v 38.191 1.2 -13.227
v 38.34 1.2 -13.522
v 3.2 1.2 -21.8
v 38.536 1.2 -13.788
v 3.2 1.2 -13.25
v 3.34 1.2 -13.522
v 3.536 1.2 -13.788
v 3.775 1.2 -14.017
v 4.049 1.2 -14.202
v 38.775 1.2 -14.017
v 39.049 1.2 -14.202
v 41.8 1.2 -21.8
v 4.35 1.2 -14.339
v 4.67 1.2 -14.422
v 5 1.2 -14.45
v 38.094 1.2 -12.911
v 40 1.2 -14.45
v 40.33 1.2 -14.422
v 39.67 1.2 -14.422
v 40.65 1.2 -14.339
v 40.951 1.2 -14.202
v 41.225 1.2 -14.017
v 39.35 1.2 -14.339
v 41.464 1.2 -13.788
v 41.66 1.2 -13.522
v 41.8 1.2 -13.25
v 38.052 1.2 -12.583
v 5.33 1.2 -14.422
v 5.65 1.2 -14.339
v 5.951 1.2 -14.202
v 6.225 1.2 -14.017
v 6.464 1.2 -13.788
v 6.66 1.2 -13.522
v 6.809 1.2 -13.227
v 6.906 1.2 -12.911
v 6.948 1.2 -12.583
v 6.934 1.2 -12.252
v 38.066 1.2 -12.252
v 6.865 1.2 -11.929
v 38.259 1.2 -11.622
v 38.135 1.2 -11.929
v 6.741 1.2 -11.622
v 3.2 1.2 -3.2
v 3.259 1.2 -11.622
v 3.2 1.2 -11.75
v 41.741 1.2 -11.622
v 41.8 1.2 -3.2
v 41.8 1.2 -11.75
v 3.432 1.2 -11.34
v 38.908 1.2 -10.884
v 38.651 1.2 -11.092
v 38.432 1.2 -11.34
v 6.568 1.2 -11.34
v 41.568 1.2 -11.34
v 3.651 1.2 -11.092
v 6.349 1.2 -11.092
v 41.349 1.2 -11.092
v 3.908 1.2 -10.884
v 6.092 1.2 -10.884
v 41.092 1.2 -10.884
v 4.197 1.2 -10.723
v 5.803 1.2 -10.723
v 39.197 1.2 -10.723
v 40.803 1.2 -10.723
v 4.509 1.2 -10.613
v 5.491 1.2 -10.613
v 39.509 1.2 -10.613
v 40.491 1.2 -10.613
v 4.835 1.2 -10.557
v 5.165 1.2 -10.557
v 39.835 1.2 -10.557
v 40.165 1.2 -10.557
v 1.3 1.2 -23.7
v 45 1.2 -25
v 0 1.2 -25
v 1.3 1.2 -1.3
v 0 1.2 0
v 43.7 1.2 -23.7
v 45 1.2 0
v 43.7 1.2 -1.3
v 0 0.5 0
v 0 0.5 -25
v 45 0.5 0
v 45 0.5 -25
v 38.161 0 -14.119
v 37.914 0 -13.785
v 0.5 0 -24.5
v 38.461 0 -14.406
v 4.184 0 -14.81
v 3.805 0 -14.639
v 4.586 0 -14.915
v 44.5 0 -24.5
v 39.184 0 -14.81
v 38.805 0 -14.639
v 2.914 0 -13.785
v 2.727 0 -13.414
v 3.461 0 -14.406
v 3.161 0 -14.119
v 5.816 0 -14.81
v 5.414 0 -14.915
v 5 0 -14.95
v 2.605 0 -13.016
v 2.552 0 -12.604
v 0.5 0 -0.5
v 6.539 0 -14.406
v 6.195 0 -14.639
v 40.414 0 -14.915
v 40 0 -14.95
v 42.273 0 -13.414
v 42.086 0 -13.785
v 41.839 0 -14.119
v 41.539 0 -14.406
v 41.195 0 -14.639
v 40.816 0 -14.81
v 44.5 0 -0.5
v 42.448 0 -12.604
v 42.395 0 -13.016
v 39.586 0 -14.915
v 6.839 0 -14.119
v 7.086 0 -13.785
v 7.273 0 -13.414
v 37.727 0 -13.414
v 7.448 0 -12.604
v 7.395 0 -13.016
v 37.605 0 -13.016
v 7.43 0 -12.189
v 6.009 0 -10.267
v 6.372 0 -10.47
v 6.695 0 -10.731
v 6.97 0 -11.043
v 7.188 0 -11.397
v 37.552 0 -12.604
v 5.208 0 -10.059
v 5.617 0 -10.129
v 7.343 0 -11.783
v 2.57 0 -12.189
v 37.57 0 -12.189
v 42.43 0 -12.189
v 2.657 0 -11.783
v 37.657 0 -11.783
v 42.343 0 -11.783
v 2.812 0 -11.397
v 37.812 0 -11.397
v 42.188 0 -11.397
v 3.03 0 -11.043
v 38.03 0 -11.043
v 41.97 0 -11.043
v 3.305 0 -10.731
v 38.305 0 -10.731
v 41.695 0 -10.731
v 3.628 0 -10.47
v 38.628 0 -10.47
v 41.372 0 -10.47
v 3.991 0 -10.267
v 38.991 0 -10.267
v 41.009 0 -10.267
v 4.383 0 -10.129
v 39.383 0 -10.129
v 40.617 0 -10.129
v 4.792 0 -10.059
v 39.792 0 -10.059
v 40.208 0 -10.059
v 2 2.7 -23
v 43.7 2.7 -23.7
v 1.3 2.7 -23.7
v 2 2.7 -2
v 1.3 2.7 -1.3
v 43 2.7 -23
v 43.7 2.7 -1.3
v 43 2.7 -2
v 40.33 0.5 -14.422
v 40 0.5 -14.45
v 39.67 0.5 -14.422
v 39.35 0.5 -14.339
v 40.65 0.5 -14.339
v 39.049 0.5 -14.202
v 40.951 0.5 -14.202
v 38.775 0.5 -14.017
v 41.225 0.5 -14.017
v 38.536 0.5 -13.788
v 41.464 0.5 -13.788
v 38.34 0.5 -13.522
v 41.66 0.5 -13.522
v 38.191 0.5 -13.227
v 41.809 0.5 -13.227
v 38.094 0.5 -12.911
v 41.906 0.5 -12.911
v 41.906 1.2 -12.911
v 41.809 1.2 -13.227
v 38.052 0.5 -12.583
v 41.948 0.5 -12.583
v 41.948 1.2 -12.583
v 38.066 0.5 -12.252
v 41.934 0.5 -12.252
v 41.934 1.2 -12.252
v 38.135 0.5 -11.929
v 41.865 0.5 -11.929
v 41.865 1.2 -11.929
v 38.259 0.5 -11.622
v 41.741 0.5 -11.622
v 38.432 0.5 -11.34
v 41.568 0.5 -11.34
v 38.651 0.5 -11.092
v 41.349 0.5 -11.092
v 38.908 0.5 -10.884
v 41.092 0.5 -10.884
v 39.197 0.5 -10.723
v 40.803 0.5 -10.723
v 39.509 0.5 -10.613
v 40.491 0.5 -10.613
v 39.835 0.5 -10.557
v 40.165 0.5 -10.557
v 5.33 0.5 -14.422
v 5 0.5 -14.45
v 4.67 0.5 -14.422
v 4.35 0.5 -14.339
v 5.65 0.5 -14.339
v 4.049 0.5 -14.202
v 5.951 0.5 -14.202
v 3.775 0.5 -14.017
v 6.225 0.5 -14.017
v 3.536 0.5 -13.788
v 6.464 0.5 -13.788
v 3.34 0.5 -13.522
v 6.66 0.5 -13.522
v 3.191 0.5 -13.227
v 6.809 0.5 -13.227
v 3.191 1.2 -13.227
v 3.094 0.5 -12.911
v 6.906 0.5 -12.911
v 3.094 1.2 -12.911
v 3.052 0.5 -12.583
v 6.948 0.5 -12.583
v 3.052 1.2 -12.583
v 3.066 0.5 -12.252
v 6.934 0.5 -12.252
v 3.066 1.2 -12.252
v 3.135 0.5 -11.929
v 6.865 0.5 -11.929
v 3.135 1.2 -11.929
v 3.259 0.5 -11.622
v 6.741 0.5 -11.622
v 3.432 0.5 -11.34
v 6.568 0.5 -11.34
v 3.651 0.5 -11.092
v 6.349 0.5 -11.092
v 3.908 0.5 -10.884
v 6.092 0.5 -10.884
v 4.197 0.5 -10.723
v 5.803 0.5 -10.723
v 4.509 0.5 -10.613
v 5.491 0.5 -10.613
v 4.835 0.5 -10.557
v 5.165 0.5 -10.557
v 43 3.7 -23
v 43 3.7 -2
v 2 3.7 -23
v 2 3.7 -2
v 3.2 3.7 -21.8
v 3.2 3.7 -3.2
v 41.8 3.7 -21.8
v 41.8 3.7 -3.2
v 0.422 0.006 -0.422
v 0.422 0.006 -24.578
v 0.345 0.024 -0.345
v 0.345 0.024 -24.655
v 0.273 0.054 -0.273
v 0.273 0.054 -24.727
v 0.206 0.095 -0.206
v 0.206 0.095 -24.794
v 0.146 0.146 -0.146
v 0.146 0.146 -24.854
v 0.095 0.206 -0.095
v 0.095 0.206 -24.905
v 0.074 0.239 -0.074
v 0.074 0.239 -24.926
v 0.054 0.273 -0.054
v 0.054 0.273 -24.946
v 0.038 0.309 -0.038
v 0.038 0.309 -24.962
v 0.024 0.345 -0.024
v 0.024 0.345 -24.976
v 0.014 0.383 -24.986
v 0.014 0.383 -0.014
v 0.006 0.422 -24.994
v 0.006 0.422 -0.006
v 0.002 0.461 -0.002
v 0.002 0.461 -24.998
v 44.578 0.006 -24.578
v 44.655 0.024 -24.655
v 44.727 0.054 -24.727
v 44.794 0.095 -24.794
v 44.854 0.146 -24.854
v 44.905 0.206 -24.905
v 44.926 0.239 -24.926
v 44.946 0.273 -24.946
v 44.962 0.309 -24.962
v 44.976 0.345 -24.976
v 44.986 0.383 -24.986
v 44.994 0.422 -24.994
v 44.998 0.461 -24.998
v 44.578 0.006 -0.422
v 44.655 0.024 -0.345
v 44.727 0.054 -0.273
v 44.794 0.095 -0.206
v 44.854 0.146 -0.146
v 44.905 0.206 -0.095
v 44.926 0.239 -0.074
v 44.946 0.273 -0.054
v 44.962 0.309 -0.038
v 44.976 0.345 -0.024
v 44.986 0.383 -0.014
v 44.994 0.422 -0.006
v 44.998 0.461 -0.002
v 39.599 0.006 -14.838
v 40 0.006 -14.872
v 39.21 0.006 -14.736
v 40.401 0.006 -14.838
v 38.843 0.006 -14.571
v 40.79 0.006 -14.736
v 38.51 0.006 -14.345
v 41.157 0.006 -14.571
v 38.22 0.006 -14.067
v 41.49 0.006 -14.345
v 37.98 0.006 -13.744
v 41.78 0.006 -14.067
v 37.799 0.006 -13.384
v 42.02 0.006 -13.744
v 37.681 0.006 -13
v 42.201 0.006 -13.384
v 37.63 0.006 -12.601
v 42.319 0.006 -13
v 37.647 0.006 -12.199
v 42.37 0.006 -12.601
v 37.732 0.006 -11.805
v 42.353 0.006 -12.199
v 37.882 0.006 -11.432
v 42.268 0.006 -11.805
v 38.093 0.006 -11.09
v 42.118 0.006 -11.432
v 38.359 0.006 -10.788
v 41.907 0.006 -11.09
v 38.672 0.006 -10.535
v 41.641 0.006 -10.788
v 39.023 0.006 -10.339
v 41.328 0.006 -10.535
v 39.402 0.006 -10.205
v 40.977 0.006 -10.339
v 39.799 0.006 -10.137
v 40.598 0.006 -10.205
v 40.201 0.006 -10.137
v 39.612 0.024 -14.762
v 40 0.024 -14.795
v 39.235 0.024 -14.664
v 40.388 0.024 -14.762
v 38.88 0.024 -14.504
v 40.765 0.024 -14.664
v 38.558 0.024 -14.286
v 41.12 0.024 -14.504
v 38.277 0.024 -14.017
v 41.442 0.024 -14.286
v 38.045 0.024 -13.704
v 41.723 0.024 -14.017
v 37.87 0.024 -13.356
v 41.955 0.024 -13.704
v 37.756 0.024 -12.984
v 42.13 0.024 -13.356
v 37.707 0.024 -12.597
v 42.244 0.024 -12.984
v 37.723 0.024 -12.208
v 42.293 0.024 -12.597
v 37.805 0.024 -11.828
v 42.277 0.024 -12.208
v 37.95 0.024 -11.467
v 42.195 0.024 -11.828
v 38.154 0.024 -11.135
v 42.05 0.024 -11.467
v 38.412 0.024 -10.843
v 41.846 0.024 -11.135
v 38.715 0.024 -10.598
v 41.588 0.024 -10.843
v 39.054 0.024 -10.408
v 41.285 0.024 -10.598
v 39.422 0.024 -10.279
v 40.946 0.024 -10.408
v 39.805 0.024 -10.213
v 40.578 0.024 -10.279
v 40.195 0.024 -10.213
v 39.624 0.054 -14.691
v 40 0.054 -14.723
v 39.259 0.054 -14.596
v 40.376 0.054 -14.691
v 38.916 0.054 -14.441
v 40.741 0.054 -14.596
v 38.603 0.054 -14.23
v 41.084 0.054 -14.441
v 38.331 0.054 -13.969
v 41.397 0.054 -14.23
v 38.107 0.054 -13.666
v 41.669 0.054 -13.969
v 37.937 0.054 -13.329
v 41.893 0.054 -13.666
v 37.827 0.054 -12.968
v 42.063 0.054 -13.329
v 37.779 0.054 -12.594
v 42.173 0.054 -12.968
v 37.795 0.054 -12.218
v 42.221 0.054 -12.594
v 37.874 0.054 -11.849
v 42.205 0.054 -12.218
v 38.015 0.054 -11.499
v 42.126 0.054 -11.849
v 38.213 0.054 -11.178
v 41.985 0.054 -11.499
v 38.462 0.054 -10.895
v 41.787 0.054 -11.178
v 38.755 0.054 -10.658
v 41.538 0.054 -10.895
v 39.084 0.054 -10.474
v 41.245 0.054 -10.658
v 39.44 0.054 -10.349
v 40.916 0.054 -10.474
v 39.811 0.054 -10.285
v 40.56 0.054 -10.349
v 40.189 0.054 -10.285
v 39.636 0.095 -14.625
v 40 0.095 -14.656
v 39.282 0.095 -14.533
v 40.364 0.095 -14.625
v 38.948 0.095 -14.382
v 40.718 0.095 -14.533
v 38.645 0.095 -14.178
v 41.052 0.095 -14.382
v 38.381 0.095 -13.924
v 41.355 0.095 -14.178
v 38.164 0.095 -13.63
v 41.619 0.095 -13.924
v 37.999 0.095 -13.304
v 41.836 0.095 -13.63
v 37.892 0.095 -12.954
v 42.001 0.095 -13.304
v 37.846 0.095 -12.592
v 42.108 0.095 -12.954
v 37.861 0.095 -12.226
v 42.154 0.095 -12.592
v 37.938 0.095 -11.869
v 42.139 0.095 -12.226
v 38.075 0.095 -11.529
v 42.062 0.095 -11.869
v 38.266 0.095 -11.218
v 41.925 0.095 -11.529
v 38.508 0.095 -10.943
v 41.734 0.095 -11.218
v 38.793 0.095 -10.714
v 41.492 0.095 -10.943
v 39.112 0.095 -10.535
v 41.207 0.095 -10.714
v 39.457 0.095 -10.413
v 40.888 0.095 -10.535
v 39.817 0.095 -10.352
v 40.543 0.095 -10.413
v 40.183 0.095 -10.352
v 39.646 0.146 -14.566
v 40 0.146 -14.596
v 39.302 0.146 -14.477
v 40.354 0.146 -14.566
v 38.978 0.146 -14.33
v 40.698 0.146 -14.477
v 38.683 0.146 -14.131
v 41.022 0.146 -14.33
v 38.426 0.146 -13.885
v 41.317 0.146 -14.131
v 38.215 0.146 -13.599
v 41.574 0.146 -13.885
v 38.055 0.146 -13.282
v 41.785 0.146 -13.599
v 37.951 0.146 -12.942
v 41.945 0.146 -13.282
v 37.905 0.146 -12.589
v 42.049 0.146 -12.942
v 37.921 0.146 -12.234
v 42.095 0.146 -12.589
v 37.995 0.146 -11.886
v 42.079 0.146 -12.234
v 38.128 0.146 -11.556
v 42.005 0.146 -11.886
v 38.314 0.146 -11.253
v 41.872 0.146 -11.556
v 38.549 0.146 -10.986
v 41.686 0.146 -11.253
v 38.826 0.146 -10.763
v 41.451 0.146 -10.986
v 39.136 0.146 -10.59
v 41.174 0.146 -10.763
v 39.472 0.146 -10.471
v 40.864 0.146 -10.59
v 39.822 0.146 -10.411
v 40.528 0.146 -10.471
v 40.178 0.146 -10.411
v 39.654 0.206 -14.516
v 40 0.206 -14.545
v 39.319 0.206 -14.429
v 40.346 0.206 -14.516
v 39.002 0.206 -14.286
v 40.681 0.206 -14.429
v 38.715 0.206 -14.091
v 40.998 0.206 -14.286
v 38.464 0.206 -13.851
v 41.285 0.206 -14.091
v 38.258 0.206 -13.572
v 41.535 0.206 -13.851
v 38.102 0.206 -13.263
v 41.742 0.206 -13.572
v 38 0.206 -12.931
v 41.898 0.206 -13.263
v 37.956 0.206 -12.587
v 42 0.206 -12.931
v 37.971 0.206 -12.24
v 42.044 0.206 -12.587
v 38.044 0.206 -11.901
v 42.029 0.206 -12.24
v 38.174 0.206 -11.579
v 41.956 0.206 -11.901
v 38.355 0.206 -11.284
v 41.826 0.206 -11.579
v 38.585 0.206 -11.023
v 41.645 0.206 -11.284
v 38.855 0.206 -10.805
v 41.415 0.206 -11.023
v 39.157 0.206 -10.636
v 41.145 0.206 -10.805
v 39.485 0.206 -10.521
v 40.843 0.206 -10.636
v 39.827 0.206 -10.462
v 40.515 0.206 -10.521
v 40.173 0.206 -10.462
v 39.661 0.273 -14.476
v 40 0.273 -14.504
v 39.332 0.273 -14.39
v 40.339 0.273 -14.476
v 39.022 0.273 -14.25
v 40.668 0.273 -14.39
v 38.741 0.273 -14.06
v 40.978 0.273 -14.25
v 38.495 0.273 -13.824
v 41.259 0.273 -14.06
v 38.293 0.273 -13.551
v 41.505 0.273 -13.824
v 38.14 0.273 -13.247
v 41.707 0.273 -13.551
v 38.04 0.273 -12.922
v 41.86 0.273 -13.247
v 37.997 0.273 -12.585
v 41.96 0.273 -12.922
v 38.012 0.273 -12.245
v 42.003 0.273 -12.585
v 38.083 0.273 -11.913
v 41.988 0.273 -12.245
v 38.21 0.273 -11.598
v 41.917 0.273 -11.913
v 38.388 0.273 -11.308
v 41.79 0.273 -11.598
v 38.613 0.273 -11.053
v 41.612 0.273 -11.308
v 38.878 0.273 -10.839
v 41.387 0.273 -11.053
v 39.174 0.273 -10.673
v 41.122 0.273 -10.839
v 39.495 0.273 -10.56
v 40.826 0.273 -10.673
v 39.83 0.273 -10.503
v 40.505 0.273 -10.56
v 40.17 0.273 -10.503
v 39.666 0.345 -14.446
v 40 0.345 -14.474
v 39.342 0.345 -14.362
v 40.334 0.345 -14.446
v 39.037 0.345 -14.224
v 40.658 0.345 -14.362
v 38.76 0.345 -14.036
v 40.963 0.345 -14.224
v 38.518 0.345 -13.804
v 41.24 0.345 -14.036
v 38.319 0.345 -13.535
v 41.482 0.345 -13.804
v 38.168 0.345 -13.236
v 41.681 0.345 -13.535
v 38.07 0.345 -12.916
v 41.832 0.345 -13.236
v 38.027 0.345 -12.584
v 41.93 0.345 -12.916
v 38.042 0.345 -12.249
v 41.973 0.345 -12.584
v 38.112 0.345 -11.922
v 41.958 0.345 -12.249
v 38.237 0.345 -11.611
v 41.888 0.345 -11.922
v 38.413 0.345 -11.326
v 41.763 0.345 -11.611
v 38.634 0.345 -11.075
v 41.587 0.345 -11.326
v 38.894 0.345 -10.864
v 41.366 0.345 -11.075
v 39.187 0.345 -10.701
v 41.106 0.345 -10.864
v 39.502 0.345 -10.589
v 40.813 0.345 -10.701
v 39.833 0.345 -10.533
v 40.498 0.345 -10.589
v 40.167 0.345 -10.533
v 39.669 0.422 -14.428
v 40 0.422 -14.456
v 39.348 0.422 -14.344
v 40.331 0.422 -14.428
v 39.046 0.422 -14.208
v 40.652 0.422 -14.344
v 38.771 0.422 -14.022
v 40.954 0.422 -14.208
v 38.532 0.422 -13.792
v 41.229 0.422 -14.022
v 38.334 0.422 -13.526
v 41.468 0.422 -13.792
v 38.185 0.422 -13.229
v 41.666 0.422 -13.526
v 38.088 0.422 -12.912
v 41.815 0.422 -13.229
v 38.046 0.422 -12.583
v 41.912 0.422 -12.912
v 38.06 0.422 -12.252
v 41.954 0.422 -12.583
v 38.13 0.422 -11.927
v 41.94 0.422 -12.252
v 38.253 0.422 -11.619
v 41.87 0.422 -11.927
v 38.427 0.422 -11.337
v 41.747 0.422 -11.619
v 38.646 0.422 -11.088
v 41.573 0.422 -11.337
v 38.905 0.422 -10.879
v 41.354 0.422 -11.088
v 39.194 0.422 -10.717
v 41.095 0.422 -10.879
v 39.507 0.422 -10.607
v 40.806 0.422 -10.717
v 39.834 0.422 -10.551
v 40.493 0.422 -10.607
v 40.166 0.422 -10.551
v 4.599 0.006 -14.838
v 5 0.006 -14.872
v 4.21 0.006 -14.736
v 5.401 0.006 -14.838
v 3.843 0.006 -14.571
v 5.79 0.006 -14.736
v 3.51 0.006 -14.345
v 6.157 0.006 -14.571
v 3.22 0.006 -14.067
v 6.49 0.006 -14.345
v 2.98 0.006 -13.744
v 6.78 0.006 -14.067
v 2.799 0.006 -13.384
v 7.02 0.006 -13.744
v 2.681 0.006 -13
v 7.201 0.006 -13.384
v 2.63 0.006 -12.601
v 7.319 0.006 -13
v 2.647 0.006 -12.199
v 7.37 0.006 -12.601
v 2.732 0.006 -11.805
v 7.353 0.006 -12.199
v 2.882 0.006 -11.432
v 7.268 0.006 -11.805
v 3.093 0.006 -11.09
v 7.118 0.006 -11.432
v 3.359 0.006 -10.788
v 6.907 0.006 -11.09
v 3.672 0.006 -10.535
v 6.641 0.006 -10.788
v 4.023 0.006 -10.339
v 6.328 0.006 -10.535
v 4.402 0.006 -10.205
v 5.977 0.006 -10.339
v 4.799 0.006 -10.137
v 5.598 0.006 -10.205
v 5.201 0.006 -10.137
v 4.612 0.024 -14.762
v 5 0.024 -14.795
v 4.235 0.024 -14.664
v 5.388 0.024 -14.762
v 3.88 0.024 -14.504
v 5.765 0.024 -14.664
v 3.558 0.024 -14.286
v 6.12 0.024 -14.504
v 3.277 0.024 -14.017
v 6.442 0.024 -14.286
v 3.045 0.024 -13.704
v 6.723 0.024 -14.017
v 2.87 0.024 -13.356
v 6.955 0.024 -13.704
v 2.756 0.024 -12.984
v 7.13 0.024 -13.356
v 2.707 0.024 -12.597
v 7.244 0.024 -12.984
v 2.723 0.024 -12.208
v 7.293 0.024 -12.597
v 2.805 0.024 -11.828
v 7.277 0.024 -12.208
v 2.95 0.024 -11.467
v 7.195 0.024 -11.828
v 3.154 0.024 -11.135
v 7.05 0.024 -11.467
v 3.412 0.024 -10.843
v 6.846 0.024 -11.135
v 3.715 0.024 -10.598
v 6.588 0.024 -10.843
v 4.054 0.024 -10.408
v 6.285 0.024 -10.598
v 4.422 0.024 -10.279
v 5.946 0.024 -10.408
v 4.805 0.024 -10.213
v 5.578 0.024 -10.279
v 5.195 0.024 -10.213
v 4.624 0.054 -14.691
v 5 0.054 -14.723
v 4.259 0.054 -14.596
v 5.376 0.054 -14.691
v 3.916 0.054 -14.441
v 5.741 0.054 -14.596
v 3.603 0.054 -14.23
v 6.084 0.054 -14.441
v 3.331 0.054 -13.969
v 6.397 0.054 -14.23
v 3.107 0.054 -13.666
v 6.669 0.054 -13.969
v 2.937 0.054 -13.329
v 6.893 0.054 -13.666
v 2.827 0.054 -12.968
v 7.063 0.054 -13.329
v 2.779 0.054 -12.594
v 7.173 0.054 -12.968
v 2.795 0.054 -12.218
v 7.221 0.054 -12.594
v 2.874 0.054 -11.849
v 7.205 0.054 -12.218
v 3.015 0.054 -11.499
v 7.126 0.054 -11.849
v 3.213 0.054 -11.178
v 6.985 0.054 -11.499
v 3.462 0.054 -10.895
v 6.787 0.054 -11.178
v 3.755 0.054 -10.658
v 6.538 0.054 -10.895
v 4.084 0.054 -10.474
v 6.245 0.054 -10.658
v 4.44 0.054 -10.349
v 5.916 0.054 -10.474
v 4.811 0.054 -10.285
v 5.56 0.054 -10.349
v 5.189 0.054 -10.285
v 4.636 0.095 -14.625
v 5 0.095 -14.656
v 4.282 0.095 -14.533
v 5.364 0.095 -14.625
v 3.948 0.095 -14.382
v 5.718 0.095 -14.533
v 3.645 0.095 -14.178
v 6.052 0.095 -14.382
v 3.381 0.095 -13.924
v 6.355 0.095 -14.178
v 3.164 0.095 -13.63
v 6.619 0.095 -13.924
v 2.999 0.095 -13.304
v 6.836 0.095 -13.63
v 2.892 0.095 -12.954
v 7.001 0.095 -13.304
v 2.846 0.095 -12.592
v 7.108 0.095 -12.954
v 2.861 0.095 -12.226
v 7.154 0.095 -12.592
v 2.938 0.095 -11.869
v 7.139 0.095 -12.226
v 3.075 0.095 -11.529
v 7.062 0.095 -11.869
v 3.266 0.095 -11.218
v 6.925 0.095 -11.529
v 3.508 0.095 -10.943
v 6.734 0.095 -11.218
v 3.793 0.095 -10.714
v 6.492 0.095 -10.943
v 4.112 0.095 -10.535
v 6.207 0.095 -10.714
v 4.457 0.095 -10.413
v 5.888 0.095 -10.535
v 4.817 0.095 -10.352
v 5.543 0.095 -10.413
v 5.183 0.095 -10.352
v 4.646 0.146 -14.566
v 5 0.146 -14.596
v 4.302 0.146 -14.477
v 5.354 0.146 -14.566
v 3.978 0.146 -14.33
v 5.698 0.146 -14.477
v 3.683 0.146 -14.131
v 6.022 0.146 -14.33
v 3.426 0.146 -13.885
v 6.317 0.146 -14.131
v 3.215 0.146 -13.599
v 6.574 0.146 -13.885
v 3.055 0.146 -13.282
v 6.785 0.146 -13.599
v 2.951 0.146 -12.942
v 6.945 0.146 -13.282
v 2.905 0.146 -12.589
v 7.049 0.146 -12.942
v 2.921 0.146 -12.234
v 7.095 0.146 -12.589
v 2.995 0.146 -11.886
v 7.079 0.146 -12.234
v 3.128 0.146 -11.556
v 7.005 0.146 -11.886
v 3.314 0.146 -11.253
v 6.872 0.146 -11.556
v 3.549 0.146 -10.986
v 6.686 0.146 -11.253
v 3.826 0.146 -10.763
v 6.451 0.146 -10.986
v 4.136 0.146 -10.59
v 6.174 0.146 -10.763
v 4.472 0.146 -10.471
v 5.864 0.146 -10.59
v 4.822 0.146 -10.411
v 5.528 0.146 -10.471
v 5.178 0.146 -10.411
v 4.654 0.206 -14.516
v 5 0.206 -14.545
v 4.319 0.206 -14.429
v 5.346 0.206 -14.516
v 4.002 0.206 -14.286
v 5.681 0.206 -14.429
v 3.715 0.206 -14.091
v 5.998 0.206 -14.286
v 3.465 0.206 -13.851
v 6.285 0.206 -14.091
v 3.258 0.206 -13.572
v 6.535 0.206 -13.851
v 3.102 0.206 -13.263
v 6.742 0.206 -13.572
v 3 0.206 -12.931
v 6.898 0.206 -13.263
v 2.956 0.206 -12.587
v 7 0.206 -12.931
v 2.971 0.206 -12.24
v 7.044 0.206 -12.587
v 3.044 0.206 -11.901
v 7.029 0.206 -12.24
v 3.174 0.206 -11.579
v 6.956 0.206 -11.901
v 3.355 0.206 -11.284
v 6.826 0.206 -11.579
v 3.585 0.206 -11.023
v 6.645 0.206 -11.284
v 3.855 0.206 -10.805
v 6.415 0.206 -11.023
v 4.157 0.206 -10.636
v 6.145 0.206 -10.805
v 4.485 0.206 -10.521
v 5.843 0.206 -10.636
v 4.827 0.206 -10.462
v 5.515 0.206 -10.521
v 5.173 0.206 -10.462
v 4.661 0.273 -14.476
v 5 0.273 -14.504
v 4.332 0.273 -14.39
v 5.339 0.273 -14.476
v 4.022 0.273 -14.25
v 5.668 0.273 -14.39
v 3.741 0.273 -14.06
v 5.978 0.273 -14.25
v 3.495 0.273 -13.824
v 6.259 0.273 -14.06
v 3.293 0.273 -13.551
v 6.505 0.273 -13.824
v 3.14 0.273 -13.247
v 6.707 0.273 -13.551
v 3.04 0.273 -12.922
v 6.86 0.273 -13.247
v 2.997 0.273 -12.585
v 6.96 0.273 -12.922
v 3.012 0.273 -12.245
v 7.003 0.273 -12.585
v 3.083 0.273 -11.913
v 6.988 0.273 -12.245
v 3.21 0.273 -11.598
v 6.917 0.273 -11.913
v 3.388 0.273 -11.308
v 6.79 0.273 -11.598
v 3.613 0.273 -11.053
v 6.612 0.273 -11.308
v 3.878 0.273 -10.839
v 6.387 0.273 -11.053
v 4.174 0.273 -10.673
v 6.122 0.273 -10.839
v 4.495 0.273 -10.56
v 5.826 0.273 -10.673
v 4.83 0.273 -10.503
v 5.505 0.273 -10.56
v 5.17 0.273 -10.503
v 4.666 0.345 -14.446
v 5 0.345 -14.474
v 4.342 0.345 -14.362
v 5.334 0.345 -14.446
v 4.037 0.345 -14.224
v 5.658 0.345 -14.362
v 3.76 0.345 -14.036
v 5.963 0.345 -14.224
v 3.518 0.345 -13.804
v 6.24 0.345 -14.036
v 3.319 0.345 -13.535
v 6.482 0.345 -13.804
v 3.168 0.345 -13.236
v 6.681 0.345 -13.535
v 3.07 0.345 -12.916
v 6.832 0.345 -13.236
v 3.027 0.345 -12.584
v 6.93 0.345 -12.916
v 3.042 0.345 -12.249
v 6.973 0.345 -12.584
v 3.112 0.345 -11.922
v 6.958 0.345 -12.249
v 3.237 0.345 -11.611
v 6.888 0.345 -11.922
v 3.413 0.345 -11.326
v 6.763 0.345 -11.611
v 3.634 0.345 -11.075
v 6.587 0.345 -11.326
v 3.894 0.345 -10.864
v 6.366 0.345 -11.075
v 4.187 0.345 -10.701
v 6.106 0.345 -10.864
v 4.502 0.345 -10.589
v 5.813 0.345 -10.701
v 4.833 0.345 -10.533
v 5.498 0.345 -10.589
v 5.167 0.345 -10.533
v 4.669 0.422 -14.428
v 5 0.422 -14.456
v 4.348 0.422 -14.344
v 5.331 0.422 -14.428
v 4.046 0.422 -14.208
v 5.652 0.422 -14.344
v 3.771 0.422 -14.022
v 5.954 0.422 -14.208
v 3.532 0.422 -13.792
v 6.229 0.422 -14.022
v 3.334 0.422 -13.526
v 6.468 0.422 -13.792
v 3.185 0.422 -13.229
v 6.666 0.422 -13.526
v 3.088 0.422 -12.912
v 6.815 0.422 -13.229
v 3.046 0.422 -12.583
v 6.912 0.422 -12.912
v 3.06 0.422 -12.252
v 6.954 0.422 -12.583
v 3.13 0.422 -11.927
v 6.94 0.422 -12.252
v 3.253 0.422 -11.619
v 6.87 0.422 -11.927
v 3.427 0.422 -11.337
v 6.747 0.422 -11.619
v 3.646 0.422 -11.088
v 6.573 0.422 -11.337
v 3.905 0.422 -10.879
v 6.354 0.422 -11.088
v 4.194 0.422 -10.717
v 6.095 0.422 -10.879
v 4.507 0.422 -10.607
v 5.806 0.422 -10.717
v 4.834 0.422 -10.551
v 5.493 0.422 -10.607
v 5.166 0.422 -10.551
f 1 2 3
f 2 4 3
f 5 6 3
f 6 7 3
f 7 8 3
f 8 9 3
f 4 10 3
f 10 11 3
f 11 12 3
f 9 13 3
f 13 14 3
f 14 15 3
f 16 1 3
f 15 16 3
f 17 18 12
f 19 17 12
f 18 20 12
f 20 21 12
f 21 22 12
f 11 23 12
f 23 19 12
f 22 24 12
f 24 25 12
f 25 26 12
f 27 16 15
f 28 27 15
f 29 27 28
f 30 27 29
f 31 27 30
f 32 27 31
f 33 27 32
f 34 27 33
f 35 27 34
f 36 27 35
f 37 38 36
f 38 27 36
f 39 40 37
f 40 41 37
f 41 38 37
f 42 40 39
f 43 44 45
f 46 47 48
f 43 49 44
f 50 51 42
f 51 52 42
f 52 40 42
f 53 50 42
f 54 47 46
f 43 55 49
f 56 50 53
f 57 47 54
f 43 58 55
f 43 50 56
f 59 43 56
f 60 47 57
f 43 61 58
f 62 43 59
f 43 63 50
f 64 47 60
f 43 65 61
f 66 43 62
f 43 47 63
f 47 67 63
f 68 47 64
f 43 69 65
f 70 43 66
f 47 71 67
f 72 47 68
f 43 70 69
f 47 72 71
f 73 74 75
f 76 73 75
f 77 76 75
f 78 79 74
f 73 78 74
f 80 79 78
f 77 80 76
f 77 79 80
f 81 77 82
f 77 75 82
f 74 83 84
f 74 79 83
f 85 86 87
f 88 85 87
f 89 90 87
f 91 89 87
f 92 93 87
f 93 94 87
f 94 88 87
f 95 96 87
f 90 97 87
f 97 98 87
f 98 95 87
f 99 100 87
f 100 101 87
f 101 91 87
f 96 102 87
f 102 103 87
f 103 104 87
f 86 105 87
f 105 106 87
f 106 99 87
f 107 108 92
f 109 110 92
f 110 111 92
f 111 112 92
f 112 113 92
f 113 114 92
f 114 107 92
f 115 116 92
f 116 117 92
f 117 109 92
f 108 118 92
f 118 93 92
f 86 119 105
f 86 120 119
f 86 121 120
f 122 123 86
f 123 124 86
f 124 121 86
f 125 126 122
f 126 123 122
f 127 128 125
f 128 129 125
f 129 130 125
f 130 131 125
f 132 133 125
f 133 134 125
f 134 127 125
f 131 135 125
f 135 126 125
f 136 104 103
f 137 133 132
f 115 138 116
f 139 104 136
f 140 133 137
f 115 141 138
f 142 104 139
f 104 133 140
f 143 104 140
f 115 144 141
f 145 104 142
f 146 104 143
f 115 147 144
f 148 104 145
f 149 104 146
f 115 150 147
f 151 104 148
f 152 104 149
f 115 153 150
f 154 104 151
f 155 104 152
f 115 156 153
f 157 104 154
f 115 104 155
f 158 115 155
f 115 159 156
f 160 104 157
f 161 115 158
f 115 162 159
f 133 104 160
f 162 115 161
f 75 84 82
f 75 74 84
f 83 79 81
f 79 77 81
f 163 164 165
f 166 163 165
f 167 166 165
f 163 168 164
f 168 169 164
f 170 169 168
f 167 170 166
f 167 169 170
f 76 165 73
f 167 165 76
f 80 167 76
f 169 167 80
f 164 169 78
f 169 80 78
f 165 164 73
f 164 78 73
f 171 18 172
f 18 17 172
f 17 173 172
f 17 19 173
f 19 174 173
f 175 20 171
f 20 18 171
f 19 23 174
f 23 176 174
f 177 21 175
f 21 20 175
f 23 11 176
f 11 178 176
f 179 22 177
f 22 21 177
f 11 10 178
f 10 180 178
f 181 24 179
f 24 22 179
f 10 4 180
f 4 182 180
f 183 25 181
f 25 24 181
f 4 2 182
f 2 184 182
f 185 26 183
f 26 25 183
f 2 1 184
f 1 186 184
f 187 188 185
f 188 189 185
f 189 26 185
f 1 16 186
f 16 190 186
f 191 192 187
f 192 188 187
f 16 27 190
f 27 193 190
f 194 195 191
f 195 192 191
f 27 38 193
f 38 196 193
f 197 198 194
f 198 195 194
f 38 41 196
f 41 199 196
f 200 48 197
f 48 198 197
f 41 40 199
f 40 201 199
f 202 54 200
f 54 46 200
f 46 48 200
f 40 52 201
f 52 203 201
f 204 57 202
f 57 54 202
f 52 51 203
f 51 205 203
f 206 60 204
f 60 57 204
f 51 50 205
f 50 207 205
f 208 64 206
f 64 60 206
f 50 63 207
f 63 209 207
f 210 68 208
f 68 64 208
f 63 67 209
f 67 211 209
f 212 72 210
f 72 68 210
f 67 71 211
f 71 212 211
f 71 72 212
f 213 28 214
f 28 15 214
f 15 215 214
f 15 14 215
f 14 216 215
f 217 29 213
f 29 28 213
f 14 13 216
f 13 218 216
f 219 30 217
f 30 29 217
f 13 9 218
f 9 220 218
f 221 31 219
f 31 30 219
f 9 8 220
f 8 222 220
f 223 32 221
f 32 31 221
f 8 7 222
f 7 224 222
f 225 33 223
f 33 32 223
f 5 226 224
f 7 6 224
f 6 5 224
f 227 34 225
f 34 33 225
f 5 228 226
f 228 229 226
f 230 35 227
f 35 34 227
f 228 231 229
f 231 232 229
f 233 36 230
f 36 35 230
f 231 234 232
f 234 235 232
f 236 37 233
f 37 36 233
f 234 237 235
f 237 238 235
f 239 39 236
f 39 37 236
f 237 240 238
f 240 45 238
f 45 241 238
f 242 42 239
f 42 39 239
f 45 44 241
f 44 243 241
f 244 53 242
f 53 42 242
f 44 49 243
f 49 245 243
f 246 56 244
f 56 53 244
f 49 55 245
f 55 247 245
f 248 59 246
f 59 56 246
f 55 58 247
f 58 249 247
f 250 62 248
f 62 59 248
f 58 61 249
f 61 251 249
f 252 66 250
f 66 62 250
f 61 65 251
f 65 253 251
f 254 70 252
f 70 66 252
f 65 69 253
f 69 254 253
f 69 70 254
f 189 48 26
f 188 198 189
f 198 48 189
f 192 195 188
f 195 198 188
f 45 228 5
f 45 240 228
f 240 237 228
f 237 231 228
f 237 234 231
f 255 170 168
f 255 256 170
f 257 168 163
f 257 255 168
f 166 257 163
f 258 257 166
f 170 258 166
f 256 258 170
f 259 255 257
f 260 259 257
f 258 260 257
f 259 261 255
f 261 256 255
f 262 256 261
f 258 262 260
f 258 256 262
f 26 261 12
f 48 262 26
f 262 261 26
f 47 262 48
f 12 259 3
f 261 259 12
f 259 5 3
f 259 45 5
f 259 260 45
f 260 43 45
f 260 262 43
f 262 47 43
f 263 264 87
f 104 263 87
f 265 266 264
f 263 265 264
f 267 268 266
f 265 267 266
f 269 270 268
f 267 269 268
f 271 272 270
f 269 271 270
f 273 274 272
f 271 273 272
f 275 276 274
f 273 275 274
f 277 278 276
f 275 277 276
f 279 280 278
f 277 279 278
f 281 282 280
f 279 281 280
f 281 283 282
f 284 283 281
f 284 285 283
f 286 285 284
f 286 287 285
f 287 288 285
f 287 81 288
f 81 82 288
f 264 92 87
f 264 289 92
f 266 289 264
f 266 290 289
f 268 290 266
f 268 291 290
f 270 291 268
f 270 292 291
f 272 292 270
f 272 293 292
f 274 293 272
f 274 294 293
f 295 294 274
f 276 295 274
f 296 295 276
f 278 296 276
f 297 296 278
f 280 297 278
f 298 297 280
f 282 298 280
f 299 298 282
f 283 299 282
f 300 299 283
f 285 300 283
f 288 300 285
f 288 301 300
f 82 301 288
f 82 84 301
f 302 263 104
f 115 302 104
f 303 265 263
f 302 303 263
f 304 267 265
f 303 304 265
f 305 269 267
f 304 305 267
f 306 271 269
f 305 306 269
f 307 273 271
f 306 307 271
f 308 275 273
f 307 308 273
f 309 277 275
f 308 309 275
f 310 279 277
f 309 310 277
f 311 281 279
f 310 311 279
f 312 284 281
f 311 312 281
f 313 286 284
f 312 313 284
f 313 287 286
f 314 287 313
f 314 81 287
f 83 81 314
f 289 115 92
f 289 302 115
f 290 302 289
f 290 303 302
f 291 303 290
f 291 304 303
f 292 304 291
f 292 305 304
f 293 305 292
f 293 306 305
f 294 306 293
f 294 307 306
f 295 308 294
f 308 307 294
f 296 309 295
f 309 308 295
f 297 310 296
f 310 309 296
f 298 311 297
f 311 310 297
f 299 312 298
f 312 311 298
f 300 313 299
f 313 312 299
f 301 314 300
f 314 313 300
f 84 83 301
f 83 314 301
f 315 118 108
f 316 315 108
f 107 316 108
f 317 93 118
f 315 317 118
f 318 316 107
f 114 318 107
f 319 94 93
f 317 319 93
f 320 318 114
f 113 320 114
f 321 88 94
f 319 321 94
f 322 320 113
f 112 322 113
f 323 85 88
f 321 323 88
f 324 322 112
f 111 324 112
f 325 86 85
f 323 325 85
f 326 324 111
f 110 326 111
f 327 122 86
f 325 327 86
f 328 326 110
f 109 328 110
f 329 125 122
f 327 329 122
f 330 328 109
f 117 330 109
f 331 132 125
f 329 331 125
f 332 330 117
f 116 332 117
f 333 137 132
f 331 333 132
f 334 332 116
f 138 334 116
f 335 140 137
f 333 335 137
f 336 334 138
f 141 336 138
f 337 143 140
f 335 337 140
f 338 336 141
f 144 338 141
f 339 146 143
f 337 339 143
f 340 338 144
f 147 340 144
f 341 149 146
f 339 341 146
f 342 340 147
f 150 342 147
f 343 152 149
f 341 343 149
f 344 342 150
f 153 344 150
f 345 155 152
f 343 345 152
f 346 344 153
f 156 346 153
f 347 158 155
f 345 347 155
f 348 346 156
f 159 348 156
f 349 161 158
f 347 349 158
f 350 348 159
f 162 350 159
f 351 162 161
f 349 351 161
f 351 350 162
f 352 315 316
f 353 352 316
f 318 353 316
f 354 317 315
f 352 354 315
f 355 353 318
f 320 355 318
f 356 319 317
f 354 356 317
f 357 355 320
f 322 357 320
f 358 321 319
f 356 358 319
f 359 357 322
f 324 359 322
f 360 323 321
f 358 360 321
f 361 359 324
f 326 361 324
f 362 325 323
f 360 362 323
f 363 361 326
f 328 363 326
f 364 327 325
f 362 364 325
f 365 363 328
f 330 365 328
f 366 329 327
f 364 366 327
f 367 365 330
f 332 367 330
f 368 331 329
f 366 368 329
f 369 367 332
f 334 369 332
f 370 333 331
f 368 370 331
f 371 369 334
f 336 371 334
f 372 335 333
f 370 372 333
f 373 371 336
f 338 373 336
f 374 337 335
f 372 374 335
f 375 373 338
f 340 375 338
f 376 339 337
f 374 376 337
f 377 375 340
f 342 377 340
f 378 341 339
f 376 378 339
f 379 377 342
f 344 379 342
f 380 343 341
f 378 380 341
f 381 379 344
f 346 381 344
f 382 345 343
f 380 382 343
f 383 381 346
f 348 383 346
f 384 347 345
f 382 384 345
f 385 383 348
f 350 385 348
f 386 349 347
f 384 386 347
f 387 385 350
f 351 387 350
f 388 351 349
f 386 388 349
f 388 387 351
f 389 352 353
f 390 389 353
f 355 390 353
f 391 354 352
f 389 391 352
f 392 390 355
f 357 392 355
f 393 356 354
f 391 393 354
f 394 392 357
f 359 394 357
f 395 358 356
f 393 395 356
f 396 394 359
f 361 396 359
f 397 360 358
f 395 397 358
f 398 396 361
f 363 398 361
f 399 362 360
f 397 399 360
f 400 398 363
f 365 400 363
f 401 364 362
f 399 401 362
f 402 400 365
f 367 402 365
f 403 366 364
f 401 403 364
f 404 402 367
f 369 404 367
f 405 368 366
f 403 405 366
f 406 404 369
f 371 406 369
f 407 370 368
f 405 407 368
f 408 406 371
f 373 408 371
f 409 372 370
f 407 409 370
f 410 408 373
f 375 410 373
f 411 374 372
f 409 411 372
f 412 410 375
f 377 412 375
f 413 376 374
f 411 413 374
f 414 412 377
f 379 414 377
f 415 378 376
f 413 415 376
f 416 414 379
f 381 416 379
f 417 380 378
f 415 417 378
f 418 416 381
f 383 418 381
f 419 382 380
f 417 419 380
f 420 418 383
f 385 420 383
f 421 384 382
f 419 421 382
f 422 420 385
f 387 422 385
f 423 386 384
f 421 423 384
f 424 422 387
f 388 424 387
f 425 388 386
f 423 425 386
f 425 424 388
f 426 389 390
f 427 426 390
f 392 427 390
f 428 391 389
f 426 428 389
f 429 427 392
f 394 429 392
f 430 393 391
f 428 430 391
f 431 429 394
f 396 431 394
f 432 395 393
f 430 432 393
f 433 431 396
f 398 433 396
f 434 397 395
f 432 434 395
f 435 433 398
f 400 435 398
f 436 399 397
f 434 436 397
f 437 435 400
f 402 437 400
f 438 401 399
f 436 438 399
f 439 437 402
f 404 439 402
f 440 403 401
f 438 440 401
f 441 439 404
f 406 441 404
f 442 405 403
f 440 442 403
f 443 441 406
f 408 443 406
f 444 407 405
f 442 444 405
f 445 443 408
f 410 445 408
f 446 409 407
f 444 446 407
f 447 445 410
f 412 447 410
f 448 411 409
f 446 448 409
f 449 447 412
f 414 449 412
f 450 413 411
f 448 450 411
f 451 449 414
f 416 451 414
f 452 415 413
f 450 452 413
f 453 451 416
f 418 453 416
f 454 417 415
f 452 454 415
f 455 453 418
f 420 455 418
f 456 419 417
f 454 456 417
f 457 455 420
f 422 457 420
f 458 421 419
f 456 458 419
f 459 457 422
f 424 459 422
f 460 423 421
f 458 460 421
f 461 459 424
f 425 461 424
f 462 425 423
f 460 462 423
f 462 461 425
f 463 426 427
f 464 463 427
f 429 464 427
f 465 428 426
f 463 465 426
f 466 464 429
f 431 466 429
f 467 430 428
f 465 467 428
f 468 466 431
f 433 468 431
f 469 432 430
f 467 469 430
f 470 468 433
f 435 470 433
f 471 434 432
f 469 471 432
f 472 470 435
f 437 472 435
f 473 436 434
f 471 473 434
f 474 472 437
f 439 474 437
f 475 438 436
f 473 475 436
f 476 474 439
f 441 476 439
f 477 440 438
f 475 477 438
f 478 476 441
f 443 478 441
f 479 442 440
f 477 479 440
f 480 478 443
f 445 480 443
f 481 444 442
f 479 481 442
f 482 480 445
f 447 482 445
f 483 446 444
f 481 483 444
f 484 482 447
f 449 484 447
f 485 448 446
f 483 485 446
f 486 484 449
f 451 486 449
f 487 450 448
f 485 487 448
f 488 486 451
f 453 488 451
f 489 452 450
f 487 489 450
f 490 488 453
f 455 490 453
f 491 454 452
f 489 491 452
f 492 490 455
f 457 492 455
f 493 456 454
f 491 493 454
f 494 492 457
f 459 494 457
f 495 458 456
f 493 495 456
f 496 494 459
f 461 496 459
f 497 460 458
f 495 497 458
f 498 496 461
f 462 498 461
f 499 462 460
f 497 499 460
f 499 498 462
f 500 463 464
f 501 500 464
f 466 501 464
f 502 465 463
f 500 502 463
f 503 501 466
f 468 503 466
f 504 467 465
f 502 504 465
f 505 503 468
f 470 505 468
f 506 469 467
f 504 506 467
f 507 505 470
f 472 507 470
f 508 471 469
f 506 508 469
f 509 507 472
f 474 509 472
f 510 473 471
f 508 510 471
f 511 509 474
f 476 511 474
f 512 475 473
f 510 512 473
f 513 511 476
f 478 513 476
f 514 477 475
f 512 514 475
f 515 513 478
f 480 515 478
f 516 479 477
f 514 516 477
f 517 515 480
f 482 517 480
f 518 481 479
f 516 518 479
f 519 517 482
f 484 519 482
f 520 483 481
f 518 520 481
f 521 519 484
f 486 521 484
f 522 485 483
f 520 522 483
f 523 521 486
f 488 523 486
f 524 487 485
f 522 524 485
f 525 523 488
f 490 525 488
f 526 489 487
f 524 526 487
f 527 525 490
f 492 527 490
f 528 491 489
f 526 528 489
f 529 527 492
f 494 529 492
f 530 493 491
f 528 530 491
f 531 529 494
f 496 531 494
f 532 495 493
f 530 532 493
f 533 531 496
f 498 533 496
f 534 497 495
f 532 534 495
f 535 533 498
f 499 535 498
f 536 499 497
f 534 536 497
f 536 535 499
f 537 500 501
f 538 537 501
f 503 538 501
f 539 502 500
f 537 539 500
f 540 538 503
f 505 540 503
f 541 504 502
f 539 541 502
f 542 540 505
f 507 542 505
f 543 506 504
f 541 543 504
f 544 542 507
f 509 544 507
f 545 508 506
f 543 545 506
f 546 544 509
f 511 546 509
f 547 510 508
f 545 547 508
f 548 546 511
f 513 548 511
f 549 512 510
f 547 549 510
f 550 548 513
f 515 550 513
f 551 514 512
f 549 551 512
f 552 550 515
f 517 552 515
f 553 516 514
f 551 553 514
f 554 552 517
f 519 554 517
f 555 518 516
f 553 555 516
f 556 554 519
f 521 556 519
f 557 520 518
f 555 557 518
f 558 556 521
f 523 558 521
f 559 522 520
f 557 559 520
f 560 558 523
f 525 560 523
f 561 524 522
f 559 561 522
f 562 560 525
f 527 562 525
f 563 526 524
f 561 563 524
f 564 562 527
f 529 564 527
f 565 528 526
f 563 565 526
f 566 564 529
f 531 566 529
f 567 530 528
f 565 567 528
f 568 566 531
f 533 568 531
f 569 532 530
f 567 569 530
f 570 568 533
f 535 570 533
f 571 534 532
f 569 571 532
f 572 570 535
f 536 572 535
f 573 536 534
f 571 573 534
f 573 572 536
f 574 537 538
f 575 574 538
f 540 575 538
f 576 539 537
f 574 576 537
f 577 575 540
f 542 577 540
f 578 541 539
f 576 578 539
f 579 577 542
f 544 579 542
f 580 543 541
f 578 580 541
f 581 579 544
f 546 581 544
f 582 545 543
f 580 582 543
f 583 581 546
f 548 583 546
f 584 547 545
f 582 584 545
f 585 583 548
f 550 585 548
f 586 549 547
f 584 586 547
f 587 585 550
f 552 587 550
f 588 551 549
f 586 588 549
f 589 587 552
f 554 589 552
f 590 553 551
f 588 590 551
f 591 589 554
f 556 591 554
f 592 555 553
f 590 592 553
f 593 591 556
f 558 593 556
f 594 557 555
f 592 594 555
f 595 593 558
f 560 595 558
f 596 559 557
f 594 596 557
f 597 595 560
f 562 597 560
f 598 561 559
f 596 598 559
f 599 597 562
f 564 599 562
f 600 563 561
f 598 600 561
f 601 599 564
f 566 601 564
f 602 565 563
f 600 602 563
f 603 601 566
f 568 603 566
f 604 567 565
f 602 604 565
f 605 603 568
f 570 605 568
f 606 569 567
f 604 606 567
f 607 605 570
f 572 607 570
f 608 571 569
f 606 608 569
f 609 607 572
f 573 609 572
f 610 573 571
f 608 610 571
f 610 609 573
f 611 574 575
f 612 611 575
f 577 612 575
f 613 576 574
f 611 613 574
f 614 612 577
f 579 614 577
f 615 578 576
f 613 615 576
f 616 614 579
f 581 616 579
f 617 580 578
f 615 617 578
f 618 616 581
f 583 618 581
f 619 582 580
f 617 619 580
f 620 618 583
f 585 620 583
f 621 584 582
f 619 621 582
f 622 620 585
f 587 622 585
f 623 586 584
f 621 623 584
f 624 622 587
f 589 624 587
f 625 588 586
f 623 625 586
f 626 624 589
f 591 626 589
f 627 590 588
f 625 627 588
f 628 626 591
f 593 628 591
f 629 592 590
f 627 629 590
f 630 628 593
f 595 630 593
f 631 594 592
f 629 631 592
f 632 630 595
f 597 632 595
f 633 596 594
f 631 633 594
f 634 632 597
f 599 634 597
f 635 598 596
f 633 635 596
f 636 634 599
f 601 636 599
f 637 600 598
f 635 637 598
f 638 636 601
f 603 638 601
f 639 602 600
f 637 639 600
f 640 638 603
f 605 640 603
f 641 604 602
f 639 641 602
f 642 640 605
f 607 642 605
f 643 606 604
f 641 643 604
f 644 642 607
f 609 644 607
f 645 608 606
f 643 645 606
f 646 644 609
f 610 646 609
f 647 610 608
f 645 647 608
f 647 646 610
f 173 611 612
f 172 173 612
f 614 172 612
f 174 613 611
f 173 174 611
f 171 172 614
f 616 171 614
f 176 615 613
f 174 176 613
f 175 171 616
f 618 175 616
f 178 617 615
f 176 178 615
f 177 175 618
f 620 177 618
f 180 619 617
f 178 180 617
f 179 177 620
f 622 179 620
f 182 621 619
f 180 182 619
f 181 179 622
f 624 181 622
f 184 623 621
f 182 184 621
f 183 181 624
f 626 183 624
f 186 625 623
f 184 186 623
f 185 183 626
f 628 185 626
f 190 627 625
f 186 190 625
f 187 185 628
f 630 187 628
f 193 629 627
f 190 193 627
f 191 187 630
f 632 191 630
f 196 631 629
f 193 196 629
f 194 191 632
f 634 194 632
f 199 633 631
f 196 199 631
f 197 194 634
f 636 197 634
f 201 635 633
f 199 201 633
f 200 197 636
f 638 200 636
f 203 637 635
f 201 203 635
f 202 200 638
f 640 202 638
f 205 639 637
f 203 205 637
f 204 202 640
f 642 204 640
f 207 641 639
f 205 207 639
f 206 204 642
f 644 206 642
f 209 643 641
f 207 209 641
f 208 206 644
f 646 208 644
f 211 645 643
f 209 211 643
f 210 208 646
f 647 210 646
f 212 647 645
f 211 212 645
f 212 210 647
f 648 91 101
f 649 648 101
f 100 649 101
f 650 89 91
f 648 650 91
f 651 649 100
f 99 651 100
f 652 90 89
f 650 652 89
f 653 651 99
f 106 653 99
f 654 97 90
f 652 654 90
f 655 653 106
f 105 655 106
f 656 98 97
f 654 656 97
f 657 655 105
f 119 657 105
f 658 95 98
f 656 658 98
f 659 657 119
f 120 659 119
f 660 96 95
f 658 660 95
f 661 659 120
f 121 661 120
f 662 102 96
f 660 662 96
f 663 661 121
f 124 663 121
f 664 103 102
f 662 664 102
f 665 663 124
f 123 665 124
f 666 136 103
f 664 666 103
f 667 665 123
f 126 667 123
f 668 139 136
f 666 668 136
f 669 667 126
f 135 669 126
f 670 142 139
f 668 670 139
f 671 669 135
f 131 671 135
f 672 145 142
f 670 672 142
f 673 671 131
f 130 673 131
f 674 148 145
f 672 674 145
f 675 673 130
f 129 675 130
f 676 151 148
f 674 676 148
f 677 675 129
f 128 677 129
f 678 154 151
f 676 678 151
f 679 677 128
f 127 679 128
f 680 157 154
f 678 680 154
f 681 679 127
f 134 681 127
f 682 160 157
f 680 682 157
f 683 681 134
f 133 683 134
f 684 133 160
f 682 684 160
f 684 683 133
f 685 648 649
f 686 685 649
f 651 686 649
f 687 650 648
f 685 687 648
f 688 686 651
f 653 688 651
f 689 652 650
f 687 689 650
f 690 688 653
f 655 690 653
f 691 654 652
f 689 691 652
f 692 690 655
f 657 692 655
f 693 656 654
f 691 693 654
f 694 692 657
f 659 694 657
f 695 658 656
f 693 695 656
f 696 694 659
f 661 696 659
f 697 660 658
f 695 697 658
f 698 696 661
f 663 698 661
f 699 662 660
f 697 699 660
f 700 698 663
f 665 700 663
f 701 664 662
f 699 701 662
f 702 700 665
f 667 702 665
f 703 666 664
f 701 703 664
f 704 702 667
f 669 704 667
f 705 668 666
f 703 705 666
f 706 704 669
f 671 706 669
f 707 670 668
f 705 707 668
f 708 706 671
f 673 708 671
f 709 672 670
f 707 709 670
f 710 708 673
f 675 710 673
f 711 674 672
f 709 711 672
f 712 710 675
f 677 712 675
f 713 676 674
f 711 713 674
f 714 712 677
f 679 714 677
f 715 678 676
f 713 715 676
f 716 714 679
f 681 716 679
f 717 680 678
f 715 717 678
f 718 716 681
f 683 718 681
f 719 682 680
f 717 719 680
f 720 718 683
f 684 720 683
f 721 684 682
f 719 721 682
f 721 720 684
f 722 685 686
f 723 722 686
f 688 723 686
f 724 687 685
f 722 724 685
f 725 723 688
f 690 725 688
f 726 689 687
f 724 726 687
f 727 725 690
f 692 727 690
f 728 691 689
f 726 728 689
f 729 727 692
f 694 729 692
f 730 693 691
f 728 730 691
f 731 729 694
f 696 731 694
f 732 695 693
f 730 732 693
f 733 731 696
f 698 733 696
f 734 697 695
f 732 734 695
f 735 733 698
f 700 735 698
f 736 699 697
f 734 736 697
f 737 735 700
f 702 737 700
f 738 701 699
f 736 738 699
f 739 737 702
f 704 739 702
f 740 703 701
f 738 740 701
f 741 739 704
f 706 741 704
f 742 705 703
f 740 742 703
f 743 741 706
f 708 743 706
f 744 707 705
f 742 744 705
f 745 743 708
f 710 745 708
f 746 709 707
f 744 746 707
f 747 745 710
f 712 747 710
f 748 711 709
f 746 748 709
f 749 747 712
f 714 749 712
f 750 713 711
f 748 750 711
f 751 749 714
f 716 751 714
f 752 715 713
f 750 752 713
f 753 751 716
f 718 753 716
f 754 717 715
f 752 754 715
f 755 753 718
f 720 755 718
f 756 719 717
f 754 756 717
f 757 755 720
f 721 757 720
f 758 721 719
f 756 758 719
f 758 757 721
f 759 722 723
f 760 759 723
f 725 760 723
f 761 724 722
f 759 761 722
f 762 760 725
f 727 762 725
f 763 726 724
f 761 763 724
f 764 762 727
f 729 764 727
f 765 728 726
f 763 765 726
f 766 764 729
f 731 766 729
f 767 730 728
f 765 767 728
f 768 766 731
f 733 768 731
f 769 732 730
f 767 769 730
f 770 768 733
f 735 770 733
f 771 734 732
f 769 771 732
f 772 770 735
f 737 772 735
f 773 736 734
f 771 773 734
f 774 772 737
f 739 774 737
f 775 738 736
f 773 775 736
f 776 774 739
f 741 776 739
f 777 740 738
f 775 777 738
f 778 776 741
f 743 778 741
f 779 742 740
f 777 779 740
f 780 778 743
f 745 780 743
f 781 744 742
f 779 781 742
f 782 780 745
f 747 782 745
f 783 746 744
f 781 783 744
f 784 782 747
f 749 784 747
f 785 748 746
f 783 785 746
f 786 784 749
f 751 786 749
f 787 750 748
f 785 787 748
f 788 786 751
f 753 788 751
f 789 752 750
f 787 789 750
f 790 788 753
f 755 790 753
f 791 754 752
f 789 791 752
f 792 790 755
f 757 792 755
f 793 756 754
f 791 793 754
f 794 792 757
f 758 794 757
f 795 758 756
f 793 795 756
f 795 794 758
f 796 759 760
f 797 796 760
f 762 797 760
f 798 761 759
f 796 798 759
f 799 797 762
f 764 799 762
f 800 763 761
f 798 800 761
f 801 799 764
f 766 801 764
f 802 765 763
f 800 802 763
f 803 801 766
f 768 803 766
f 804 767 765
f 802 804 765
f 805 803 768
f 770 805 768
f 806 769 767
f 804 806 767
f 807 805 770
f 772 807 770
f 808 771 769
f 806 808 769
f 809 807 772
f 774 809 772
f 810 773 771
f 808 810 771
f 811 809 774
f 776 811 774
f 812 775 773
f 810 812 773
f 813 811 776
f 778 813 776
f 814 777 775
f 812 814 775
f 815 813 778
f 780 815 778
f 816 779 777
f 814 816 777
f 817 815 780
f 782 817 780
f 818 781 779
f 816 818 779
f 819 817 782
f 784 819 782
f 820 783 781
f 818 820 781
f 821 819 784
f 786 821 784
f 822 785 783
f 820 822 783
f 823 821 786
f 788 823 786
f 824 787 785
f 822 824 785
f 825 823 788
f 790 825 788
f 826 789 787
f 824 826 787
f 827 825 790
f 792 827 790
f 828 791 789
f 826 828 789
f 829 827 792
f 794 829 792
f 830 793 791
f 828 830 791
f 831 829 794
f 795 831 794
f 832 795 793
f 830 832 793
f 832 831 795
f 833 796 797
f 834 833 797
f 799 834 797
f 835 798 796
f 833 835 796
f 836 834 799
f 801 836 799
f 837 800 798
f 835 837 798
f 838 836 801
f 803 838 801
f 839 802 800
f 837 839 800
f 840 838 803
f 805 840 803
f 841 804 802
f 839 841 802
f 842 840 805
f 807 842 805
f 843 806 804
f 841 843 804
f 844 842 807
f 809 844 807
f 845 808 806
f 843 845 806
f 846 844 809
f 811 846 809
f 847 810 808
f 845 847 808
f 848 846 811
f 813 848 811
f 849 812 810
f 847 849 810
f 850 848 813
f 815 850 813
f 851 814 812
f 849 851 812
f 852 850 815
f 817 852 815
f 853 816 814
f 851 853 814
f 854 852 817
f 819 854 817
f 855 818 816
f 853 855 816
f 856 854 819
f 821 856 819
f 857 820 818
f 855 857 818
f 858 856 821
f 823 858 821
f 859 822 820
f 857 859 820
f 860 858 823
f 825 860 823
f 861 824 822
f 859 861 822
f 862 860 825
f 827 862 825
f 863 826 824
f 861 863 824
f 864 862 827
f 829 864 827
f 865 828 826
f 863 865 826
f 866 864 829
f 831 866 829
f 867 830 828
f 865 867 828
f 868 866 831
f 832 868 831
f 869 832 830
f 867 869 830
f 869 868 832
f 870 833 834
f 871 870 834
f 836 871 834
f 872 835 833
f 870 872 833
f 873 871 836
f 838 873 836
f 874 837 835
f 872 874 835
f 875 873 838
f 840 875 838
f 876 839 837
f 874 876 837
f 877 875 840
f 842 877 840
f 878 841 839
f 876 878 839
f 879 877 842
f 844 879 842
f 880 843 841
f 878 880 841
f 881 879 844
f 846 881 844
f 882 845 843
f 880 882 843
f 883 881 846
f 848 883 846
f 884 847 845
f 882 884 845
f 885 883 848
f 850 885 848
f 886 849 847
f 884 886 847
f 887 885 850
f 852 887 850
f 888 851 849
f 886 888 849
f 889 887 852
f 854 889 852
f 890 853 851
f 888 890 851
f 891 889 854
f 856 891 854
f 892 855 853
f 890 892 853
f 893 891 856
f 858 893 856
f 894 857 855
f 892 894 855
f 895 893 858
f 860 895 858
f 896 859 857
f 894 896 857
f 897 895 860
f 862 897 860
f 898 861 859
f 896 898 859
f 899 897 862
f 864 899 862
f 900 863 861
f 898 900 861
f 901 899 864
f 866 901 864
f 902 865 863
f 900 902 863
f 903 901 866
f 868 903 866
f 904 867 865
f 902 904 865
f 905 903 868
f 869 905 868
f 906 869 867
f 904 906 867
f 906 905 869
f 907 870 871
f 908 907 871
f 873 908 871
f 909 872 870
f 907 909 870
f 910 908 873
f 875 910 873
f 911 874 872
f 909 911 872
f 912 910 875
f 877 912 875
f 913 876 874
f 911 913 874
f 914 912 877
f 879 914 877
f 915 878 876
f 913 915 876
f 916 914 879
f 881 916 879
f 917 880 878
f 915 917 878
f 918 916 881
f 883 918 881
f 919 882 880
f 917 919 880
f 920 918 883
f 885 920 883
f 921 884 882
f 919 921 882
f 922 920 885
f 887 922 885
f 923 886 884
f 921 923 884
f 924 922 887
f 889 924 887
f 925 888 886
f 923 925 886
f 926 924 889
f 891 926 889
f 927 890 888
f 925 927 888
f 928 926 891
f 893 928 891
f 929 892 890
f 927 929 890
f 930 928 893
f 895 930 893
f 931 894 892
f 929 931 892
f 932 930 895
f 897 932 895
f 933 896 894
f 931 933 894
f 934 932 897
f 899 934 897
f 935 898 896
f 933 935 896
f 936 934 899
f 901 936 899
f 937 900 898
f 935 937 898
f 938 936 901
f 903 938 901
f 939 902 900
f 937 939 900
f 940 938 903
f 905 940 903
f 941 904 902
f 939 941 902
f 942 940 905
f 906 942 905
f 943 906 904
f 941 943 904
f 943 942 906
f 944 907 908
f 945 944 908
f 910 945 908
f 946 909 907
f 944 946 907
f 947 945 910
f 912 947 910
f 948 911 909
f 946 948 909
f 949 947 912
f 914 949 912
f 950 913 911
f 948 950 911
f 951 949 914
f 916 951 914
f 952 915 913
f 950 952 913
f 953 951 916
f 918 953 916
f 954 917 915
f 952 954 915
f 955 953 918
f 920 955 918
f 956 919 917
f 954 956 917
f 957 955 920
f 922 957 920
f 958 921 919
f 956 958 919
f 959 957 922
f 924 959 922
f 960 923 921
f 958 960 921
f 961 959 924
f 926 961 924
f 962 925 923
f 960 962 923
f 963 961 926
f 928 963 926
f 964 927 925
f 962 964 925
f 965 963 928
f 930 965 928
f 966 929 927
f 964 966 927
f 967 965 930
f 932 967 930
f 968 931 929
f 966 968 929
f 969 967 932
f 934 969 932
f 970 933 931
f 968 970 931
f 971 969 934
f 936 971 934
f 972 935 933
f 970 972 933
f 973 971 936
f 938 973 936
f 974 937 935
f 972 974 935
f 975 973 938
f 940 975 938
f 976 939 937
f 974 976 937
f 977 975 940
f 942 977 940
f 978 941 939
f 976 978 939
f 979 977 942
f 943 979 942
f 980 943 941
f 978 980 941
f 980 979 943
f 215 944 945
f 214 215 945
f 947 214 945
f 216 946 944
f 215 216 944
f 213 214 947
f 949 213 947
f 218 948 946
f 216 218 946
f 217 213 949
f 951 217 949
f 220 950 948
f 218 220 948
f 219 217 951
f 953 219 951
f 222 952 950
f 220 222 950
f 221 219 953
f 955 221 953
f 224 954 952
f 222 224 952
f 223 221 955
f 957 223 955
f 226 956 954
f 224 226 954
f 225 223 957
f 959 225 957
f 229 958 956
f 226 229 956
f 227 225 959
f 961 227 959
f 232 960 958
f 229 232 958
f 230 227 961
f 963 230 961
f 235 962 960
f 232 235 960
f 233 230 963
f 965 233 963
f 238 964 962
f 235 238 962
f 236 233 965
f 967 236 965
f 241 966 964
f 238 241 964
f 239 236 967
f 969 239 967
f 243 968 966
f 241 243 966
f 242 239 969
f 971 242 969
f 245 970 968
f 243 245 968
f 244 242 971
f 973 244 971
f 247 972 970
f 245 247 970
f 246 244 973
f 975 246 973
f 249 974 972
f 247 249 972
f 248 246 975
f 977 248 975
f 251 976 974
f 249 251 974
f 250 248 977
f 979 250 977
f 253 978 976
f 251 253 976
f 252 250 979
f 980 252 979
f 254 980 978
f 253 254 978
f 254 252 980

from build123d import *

# Parameters (mm, degrees)
SKETCH1_W                  = 45
SKETCH1_H                  = 1.2
BOSS_EXTRUDE1_DEPTH        = 25
SKETCH2_W                  = 42.4
SKETCH2_H                  = 22.4
SKETCH2_W_2                = 40.4
SKETCH2_H_2                = 20.4
EXTRUDE_THIN1_DEPTH        = 1.5
F_6_0_204_DIAMETER_HOLE1_D = 3.9
SKETCH6_W                  = 41
SKETCH6_H                  = 21
SKETCH6_W_2                = 38.6
SKETCH6_H_2                = 18.6
EXTRUDE_THIN2_DEPTH        = 2.5
FILLET1_R                  = 0.5


with BuildPart() as part:
    # Sketch1 → Boss-Extrude1 (new body)
    with BuildSketch(Plane.XY):
        with Locations((22.5, 0.6)):
            Rectangle(SKETCH1_W, SKETCH1_H)
    extrude(amount=-BOSS_EXTRUDE1_DEPTH)

    # Sketch2 → Extrude-Thin1 (add)
    with BuildSketch(Plane(origin=(0, 1.2, 0), x_dir=(1, 0, 0), z_dir=(0, 1, 0))):
        with Locations((22.5, 12.5)):
            Rectangle(SKETCH2_W, SKETCH2_H)
        with Locations((22.5, 12.5)):
            Rectangle(SKETCH2_W_2, SKETCH2_H_2, mode=Mode.SUBTRACT)
    extrude(amount=EXTRUDE_THIN1_DEPTH)

    # #6 (0.204) Diameter Hole1 (through all)
    with Locations(Plane(origin=(0, 0, 0), x_dir=(-1, 0, 0), z_dir=(0, -1, 0))):
        with Locations((-5, 12.5), (-40, 12.5)):
            Hole(F_6_0_204_DIAMETER_HOLE1_D / 2)

    # Sketch6 → Extrude-Thin2 (add)
    with BuildSketch(Plane(origin=(0, 1.2, 0), x_dir=(1, 0, 0), z_dir=(0, 1, 0))):
        with Locations((22.5, 12.5)):
            Rectangle(SKETCH6_W, SKETCH6_H)
        with Locations((22.5, 12.5)):
            Rectangle(SKETCH6_W_2, SKETCH6_H_2, mode=Mode.SUBTRACT)
    extrude(amount=EXTRUDE_THIN2_DEPTH)

    # Fillet1
    fillet1_edges = [part.edges().sort_by_distance(p)[0] for p in [
        (38.05, 0, -12.5),
        (3.05, 0, -12.5),
        (22.5, 0, 0),
        (45, 0, -12.5),
        (0, 0, -12.5),
        (22.5, 0, -25),
    ]]
    fillet(fillet1_edges, radius=FILLET1_R)


solid = part.part
